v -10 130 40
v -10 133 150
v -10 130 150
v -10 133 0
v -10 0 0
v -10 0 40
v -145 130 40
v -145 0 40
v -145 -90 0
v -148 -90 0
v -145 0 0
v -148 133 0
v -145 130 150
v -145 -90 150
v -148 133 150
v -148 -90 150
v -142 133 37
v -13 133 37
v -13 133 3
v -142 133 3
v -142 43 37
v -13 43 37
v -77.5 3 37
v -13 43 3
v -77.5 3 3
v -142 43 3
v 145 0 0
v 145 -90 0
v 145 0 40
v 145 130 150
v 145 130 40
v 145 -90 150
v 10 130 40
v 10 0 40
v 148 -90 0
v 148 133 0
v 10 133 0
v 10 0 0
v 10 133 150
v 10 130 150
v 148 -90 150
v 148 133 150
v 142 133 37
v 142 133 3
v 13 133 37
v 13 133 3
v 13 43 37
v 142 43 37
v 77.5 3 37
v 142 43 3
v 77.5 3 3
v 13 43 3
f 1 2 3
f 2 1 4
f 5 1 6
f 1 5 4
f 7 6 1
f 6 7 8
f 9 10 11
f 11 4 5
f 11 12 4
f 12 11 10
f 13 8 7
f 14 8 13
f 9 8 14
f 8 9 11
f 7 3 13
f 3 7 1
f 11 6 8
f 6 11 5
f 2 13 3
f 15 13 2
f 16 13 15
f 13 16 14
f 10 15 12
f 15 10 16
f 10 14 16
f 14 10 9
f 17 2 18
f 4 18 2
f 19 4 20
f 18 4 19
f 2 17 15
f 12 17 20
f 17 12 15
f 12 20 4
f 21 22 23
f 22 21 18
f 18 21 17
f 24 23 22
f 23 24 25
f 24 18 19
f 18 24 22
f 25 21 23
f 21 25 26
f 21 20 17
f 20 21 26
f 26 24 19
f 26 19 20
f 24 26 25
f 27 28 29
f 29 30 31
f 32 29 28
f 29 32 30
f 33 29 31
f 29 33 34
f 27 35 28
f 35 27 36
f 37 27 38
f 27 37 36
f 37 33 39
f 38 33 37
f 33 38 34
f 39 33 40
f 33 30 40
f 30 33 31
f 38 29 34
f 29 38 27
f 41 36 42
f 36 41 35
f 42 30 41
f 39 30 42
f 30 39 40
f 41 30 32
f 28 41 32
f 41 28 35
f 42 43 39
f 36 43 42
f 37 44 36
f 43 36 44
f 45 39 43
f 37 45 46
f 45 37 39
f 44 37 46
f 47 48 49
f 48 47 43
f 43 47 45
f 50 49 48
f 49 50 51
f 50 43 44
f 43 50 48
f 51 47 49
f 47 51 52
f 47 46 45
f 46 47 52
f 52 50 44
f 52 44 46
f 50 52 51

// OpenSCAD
// Largeur 270

mur = 3;

hauteur = 220 - 180;
profondeur = 130;
largeur = 270/2;

translate([-largeur-10,0,0]) {
	difference() {
		union() {
			cube([largeur, profondeur, hauteur]);
			translate([-mur,profondeur-220,0])
				cube([mur,220,150]);
			translate([-mur,profondeur,0])
				cube([mur+largeur,mur,150]);
		}
		translate([mur, mur, mur])
			linear_extrude(hauteur-mur*2)
				polygon([
						[largeur/2 - mur,0], 
						[0,40], 
						[0,profondeur+mur],
						[largeur - mur *2,profondeur+mur], 
						[largeur - mur *2,40]]);
	}
}

translate([10,0,0]) {
	difference() {
		union() {
			cube([largeur, profondeur, hauteur]);
			translate([largeur,profondeur-220,0])
				cube([mur,220,150]);
			translate([0,profondeur,0])
				cube([mur+largeur,mur,150]);
		}
		translate([mur, mur, mur])
			linear_extrude(hauteur-mur*2)
				polygon([
						[largeur/2 - mur,0], 
						[0,40], 
						[0,profondeur+mur],
						[largeur - mur *2,profondeur+mur], 
						[largeur - mur *2,40]]);
	}		
}
